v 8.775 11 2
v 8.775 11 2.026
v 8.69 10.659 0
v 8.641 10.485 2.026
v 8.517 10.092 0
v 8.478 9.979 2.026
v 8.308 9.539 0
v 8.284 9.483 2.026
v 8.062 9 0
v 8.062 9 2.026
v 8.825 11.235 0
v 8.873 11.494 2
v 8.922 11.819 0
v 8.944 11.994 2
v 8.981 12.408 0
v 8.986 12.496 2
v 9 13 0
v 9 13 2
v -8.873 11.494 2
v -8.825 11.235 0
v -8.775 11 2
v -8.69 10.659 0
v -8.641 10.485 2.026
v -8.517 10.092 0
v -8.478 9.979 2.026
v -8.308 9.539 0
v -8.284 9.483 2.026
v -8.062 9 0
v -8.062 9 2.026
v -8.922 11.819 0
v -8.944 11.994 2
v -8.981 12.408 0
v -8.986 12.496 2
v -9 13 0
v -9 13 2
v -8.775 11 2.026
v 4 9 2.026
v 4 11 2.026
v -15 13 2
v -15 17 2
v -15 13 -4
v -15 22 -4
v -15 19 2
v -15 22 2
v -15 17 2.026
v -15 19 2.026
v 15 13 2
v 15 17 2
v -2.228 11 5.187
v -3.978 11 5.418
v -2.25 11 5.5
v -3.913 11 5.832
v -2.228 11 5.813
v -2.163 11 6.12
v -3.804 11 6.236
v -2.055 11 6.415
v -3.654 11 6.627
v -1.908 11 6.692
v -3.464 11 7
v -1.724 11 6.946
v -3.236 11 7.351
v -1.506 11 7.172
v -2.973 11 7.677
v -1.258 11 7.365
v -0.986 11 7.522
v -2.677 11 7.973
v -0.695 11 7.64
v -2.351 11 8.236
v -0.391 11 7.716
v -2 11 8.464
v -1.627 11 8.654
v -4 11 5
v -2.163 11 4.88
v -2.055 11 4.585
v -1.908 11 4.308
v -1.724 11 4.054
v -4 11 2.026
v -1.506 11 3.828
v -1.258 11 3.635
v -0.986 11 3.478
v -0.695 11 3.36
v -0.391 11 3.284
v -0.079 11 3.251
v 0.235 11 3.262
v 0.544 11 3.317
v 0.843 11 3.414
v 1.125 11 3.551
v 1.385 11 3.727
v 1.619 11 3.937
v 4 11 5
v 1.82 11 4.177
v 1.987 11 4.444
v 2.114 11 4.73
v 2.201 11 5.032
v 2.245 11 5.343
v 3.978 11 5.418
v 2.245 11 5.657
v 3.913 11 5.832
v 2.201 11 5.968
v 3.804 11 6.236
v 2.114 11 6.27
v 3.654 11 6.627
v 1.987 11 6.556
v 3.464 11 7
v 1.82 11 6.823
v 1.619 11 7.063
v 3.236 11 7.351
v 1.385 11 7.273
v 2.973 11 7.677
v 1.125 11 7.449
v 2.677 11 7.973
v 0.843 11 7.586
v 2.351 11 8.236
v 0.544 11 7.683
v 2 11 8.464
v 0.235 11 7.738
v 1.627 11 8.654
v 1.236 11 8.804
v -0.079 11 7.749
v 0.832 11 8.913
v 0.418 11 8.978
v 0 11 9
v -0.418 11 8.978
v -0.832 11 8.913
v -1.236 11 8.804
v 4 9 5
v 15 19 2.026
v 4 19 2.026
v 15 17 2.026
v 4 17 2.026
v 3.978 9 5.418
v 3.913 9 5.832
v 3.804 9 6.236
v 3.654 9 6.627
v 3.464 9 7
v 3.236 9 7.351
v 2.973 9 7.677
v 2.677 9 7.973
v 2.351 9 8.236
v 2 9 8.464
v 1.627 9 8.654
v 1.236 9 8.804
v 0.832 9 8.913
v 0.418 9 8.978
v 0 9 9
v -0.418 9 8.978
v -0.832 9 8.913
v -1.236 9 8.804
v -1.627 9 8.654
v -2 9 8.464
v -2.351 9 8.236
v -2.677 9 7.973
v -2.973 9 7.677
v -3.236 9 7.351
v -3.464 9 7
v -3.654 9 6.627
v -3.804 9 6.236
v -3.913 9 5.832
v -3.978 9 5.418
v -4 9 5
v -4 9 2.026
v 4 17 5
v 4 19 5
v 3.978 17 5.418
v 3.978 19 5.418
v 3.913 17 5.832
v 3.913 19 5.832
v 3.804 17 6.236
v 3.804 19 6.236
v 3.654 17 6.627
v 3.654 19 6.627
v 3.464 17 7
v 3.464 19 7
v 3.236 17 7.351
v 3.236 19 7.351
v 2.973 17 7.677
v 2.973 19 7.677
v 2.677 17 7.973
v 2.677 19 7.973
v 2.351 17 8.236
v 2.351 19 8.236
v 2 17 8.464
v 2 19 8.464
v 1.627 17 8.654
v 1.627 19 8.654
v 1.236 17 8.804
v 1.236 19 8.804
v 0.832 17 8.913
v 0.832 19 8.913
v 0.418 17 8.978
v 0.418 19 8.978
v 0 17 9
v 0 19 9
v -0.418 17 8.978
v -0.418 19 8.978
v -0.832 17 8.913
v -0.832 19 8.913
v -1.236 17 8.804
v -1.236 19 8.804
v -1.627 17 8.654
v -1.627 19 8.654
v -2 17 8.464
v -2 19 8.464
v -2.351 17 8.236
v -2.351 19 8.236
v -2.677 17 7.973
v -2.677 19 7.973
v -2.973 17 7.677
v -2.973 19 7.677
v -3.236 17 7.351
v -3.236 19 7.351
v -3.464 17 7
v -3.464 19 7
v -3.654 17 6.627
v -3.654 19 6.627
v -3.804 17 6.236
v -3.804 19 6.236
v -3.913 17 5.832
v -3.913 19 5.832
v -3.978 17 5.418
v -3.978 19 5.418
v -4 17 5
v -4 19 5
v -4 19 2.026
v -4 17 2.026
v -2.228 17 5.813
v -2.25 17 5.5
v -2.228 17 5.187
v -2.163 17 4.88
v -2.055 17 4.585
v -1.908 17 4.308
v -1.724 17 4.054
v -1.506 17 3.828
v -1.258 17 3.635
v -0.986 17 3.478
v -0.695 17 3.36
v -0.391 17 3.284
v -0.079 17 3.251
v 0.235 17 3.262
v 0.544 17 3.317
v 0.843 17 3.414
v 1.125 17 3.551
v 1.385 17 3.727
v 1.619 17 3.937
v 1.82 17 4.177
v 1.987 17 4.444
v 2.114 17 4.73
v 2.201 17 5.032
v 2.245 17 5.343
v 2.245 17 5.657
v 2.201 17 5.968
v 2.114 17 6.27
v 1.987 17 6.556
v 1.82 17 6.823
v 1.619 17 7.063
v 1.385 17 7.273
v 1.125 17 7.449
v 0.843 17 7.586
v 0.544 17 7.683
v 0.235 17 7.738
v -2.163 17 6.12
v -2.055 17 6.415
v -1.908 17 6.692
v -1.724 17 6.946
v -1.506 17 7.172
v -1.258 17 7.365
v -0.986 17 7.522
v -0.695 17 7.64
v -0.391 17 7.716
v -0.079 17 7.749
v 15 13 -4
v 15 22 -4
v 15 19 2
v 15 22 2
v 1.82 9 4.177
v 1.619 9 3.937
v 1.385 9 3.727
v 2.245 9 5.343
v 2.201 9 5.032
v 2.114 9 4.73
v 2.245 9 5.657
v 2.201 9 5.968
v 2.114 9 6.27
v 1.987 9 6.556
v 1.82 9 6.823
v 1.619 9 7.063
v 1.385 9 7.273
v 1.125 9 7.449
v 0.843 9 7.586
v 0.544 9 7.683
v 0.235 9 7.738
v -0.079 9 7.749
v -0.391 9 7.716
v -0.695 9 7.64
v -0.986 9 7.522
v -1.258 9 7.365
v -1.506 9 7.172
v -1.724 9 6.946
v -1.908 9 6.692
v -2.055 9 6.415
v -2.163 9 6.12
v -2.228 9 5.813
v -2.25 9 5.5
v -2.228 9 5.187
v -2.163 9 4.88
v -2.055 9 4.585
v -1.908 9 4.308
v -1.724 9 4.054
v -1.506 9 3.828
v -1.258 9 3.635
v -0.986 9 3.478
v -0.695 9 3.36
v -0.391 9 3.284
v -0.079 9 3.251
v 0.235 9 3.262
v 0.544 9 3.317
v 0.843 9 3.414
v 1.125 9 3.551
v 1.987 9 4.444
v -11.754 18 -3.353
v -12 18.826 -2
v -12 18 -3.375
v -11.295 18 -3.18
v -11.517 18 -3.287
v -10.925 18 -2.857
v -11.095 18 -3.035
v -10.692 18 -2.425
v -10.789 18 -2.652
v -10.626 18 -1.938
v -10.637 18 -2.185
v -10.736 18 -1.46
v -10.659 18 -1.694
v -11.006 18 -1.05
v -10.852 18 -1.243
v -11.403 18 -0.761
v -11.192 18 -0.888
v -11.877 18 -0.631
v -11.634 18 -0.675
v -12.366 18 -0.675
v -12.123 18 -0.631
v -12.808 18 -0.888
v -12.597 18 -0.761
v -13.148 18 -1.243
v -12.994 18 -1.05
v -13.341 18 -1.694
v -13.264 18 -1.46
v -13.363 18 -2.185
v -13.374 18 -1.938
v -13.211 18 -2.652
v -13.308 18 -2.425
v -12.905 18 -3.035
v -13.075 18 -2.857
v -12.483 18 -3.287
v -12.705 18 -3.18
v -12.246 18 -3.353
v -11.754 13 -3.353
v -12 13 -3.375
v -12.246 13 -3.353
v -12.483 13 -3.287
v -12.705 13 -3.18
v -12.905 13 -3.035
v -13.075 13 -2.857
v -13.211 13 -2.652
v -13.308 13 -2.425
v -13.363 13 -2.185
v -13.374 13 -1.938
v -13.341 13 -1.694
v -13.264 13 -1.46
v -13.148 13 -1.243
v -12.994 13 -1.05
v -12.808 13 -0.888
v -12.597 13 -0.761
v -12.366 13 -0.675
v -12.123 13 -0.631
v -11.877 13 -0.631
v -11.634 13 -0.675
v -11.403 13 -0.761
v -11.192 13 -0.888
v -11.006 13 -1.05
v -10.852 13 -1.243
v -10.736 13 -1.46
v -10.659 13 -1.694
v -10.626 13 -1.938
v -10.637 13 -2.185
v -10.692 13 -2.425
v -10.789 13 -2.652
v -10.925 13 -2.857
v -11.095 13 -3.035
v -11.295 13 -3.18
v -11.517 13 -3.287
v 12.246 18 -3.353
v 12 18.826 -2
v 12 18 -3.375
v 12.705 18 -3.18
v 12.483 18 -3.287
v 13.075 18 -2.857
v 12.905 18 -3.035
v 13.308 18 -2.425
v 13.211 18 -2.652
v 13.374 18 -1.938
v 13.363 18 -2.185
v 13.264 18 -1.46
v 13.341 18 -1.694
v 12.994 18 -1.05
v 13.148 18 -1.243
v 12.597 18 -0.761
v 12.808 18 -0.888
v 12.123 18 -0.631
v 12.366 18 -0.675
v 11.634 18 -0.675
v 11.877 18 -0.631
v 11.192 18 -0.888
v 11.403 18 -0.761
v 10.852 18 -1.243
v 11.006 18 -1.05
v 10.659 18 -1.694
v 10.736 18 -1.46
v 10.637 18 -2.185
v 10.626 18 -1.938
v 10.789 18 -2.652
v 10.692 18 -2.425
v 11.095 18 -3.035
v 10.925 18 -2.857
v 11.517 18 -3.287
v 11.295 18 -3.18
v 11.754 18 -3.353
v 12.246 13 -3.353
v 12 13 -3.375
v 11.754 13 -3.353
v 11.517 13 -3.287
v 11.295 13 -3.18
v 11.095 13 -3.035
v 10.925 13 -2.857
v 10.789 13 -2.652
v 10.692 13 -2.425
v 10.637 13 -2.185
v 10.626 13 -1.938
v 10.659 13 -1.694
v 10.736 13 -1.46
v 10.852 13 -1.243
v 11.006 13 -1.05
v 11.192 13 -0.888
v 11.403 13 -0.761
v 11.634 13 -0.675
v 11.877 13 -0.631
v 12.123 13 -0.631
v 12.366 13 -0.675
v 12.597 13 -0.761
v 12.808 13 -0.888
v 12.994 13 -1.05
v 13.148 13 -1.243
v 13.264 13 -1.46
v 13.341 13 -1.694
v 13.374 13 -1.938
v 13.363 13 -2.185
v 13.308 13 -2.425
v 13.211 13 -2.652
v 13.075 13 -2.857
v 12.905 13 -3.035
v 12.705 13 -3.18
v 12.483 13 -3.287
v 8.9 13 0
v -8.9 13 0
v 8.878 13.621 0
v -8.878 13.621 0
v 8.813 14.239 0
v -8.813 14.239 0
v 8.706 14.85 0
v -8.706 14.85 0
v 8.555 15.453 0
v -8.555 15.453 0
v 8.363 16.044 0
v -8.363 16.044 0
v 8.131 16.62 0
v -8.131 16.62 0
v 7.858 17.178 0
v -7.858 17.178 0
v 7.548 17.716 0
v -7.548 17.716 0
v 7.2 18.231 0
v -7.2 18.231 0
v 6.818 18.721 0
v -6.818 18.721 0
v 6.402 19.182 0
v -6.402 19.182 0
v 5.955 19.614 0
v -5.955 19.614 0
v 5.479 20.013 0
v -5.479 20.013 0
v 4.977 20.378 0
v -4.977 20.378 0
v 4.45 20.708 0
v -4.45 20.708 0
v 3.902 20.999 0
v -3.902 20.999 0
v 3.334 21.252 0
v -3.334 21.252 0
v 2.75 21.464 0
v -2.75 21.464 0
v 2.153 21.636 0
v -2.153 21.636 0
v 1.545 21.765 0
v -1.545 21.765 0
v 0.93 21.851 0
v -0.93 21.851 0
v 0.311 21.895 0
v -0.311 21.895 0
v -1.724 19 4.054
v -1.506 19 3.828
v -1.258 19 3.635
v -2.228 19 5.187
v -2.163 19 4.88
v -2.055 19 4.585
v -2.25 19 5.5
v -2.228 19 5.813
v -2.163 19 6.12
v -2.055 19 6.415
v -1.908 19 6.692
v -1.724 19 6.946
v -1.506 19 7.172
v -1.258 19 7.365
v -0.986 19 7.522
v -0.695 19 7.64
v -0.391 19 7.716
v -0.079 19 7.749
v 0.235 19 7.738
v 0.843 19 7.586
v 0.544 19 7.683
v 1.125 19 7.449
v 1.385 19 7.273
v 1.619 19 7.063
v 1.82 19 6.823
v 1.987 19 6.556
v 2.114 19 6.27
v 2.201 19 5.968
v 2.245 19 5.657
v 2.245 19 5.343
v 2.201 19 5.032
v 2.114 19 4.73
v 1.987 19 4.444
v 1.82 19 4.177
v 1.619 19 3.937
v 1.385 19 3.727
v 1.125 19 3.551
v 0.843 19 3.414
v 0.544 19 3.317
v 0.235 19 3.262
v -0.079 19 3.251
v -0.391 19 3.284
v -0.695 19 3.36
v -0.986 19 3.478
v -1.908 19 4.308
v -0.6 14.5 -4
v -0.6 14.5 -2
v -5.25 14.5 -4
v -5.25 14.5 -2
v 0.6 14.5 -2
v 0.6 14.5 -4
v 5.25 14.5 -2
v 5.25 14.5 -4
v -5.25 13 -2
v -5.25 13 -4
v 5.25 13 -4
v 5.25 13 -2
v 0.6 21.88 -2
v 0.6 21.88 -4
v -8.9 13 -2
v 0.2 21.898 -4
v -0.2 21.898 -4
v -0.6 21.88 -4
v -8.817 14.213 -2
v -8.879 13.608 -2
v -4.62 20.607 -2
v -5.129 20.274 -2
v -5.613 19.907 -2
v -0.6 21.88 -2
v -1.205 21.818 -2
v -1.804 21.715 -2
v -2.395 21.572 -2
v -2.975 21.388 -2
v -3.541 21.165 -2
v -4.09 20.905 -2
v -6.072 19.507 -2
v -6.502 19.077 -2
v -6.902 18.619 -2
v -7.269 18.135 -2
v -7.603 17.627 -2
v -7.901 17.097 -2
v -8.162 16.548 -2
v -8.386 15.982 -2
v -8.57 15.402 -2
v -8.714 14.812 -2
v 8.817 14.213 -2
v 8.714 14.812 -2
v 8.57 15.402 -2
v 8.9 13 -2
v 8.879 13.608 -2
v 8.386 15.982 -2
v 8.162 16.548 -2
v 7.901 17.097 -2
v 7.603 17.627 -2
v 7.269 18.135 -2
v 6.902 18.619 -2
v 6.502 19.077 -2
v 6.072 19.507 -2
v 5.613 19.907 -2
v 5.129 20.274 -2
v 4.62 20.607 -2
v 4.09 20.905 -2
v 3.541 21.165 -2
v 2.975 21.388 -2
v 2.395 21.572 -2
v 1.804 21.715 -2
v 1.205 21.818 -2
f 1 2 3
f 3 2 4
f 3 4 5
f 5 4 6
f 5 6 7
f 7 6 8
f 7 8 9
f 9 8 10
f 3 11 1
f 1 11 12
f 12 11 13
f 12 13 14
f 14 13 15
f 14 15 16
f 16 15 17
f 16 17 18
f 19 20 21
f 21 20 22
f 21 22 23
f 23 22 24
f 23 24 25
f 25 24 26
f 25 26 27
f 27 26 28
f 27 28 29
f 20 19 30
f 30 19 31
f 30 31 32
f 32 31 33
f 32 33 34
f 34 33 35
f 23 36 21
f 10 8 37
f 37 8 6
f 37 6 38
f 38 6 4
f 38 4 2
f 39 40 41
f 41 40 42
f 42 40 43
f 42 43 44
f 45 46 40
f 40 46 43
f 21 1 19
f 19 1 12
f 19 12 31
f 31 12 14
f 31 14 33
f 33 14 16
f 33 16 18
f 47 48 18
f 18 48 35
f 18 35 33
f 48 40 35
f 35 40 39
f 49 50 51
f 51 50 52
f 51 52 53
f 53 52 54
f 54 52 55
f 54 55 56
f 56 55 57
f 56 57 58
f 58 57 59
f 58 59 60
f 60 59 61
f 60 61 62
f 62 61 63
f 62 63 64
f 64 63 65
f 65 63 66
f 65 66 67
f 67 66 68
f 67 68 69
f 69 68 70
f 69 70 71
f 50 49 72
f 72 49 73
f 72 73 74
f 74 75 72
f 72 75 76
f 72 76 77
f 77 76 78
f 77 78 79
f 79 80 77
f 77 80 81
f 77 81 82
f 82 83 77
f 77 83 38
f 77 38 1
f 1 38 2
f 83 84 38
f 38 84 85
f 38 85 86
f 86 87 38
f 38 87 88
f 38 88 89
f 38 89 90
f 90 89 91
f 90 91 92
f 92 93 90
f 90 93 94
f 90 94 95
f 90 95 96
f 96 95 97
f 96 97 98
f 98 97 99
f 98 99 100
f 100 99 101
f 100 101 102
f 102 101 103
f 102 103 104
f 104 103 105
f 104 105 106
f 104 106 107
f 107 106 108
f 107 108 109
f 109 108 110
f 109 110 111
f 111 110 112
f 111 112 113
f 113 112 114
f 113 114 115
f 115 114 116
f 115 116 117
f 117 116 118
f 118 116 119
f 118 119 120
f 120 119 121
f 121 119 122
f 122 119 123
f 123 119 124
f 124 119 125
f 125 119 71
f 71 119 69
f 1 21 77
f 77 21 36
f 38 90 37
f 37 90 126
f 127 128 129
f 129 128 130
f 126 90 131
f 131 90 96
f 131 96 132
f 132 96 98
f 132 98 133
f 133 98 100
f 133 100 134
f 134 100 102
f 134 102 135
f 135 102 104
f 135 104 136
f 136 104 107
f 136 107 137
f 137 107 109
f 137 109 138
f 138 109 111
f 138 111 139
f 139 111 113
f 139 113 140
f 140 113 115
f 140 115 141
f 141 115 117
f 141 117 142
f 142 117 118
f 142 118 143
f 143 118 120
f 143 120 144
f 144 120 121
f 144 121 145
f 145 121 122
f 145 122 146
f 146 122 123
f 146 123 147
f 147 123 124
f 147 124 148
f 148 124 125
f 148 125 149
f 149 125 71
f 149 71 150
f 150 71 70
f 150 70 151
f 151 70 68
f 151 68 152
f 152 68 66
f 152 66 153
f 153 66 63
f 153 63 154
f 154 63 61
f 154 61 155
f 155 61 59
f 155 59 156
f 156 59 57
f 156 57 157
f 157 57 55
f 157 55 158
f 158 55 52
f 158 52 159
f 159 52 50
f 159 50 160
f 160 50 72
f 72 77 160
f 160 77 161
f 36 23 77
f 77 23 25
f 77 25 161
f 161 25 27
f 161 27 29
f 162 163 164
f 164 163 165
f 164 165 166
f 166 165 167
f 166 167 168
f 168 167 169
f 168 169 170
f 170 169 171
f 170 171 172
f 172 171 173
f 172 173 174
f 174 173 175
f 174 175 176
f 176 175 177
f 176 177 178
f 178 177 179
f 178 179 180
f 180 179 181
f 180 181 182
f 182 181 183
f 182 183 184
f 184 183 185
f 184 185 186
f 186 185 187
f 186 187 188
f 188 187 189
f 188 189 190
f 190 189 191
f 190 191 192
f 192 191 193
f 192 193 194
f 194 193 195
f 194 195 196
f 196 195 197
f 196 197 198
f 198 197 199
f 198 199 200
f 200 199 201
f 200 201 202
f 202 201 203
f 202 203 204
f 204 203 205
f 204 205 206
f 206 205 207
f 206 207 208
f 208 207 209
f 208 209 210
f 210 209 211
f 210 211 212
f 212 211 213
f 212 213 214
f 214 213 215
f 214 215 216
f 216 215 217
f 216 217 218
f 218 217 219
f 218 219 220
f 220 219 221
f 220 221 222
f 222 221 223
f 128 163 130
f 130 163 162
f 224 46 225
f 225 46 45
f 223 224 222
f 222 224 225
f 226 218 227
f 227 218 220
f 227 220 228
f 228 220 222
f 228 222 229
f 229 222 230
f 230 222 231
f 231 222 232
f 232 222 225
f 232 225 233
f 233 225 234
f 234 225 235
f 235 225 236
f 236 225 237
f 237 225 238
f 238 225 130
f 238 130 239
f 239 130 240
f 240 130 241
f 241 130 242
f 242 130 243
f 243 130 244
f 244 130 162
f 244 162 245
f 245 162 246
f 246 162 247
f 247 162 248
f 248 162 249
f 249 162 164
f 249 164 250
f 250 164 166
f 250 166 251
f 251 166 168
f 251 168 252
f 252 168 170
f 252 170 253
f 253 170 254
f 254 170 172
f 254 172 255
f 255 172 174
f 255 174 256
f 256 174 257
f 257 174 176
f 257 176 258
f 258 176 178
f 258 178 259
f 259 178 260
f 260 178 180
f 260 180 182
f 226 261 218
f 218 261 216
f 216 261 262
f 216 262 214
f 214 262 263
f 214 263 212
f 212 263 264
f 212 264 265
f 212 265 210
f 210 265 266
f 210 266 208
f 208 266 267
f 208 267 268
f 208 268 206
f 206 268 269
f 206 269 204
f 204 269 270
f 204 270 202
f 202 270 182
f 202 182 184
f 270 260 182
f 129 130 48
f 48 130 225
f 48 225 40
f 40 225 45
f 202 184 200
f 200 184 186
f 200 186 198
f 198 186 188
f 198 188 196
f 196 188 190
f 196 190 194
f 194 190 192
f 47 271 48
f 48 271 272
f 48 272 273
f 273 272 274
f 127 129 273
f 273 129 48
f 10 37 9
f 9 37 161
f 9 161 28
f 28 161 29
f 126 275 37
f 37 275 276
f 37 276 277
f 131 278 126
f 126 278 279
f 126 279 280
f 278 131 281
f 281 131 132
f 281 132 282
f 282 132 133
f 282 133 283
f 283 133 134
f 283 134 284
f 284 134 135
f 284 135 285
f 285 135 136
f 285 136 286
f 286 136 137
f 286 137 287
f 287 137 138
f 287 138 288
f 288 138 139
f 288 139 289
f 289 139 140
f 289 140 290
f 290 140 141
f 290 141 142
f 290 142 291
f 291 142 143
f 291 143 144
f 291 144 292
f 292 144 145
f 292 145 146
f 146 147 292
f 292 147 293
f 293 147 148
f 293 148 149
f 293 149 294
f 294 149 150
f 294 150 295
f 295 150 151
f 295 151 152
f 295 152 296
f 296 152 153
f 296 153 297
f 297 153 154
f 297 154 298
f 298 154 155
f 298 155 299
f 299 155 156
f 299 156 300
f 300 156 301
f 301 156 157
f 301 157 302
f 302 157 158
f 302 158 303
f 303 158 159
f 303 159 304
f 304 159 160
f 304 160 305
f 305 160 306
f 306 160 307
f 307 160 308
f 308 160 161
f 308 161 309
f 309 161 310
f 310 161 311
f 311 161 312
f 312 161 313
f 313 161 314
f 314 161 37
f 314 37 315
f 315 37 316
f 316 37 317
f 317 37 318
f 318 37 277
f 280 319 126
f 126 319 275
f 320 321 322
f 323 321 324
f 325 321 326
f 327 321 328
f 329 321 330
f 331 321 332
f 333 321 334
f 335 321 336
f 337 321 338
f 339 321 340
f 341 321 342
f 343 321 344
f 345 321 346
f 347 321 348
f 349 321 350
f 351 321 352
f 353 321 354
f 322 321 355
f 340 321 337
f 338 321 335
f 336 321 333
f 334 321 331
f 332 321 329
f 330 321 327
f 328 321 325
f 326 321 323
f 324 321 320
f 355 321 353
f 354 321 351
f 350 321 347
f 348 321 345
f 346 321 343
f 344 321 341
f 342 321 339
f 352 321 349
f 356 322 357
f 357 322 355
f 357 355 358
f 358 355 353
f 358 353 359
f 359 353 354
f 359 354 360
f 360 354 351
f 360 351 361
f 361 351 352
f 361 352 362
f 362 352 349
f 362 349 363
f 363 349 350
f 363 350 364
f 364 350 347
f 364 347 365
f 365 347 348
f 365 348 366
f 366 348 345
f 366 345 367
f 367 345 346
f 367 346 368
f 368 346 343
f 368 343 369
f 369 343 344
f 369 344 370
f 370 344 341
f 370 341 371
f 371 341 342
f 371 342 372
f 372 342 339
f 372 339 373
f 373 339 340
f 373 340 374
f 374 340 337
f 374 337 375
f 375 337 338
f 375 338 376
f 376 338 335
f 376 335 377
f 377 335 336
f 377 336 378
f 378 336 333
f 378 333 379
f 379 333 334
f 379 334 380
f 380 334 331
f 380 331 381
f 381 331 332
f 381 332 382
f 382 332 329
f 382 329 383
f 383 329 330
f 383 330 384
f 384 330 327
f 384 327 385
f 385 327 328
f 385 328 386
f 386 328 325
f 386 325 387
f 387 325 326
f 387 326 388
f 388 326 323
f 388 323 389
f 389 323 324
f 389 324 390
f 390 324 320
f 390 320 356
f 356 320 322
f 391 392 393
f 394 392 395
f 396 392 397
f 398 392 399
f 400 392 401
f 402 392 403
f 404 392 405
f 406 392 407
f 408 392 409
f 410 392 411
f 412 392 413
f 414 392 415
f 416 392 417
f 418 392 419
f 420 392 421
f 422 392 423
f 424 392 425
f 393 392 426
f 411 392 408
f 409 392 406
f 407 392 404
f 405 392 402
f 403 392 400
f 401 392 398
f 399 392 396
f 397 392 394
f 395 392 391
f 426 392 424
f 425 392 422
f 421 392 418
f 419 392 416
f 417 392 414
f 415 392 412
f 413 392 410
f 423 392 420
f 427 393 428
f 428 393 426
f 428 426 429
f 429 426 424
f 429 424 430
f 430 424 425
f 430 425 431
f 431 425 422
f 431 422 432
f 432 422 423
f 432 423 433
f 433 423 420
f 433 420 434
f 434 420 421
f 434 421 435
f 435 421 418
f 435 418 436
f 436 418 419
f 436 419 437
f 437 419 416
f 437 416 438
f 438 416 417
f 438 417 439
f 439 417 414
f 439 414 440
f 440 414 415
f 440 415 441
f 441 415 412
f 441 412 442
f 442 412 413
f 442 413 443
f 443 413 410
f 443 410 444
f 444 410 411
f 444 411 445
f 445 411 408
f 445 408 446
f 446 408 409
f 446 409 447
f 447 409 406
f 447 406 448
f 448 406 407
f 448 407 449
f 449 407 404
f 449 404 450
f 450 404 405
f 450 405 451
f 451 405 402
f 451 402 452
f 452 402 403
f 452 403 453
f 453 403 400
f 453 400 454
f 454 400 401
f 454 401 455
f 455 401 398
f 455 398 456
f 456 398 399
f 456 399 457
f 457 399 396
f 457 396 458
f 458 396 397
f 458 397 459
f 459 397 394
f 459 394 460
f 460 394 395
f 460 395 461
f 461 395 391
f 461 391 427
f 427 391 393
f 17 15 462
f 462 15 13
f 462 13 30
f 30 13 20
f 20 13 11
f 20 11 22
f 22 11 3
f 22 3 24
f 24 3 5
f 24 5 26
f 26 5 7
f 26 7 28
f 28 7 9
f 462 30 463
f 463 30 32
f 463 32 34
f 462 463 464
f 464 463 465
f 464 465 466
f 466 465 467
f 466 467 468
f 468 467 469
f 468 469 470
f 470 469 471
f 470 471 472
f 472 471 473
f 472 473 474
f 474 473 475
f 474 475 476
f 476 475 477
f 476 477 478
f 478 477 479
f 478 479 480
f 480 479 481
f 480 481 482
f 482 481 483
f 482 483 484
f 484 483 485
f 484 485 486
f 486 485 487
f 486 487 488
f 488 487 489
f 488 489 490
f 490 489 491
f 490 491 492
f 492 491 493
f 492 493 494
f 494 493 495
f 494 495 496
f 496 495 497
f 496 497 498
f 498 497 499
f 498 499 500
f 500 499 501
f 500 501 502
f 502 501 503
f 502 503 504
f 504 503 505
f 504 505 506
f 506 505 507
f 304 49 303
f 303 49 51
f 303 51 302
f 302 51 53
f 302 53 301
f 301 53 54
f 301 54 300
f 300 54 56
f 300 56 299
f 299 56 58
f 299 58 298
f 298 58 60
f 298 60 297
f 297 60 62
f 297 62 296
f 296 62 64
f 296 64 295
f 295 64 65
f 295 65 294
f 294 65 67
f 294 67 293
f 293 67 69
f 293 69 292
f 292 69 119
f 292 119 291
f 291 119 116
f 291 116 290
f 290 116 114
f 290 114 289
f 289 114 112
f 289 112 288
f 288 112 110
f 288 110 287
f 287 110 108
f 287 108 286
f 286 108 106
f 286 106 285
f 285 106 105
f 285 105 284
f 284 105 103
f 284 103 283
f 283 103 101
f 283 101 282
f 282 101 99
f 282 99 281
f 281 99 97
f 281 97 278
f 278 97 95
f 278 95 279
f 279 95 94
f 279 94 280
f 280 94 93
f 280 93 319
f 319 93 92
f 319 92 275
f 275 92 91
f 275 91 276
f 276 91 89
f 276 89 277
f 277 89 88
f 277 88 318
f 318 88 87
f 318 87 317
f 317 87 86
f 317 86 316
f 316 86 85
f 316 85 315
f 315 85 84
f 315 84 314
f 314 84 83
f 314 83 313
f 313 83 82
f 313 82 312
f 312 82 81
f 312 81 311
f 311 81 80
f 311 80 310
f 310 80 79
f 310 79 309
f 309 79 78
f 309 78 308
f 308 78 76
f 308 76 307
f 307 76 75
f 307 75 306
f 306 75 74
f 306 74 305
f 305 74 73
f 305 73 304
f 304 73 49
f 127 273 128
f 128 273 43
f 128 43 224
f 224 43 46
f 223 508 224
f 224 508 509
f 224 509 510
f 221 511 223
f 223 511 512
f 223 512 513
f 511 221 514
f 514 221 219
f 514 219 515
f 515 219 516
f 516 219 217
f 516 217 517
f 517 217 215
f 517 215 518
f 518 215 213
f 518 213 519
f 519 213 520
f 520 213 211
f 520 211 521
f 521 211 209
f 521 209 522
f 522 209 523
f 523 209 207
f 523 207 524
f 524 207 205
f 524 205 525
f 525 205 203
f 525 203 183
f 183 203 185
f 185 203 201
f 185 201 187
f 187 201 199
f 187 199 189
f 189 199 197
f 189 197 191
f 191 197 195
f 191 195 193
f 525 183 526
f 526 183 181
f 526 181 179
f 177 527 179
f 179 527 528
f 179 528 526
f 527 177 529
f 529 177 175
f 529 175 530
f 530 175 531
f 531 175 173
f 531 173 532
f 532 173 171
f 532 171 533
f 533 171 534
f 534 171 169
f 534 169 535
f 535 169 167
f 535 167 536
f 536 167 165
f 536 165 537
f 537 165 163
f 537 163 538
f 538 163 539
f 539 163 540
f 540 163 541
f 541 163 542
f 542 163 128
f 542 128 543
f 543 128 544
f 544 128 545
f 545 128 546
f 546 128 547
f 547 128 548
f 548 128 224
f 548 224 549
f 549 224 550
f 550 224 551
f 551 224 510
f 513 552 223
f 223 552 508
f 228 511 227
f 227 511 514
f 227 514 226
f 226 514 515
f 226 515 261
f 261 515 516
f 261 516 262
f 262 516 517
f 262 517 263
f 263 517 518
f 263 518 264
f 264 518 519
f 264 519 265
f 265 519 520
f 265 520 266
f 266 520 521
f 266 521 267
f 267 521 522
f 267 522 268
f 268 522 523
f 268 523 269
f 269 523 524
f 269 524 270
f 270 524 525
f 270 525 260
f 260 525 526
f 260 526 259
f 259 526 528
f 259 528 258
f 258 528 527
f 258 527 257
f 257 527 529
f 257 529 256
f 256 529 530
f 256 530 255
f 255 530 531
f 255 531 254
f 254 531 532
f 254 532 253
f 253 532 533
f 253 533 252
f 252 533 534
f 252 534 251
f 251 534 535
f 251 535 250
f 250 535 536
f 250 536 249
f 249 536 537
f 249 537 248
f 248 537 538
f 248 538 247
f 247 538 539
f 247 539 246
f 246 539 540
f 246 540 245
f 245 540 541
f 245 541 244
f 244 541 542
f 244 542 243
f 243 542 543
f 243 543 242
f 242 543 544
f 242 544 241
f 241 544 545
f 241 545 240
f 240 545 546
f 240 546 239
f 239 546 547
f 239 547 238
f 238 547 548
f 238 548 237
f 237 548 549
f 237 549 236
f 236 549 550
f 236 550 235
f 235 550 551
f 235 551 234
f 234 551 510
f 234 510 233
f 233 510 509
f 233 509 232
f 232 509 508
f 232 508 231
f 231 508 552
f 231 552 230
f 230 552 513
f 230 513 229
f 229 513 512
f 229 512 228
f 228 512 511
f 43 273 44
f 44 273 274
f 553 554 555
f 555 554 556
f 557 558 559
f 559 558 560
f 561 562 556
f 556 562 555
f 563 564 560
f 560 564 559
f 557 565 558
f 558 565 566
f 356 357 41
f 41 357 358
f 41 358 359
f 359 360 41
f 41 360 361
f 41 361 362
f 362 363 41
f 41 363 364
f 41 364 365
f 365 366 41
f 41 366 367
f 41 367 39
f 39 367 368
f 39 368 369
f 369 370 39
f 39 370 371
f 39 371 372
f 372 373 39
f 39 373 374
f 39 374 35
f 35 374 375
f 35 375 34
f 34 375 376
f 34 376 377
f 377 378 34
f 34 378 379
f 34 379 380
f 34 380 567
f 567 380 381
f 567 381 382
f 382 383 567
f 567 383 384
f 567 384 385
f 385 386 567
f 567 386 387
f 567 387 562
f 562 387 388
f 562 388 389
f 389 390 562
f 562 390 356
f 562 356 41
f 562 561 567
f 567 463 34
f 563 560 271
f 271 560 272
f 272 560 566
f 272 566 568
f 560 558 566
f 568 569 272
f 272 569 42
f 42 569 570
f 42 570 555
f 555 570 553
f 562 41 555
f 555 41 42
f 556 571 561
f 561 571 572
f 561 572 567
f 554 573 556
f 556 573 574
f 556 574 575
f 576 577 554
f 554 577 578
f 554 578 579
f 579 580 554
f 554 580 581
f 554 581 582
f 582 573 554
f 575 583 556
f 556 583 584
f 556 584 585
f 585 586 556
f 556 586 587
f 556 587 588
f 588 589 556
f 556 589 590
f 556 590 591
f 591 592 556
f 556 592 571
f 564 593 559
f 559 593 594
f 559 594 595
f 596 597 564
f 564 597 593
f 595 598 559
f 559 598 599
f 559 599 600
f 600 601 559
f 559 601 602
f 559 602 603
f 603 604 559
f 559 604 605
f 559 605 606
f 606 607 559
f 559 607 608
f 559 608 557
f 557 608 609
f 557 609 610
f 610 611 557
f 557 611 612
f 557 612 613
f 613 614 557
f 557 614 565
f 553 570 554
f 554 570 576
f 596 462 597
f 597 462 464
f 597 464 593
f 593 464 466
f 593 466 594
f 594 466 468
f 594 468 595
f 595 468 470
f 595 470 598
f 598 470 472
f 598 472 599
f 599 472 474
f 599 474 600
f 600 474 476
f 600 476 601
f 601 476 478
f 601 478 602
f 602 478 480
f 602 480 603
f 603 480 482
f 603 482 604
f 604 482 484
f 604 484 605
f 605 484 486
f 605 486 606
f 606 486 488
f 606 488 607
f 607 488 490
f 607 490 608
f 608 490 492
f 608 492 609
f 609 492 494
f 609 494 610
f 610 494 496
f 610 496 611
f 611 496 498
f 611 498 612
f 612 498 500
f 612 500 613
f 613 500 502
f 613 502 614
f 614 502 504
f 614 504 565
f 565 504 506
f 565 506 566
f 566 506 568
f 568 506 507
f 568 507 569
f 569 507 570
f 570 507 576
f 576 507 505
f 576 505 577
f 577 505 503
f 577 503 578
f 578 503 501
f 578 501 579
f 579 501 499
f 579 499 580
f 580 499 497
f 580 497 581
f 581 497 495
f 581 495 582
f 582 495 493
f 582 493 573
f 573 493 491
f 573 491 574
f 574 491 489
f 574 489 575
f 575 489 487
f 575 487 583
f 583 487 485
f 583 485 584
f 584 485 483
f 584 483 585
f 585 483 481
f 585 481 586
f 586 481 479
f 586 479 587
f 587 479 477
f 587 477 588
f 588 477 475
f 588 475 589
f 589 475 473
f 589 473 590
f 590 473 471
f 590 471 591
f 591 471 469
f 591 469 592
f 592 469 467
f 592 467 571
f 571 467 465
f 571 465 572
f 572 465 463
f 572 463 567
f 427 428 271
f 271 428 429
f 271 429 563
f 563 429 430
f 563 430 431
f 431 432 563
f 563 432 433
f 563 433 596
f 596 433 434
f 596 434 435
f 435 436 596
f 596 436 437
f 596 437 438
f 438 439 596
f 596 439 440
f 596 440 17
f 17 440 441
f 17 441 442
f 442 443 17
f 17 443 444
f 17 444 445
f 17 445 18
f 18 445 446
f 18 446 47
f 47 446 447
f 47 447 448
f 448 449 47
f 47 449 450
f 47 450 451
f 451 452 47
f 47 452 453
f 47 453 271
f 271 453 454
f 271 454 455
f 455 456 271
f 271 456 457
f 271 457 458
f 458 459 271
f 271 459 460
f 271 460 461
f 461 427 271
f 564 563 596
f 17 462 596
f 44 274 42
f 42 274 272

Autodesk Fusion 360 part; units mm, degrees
sketch "スケッチ1" plane through (0, 0, 0) normal (0, 0, 1) x (1, 0, 0)
  line L0 (-16.5, 22) -> (16.5, 22)
  line L1 (16.5, 22) -> (16.5, 0)
  line L2 (16.5, 0) -> (-16.5, 0)
  line L3 (-16.5, 0) -> (-16.5, 22)
  dimension "d7" = 22
  dimension "d8" = 33
extrude "押し出し1" add sketch "スケッチ1" along normal blind 2
sketch "スケッチ3" plane through (0, 0, 0) normal (0, 0, -1) x (1, 0, 0)
  line L0 (16.5, 0) -> (-16.5, 0)
  line L1 (-16.5, 0) -> (-16.5, -22)
  line L2 (-16.5, -22) -> (16.5, -22)
  line L3 (16.5, -22) -> (16.5, 0)
  arc A0 (-8.9, -13) -> (8.9, -13) centre (0, -13) ccw
  line L4 (16.5, -13) -> (-16.5, -13)
  dimension "d9" = 17.8
  dimension "d10" = 9
extrude "押し出し2" add sketch "スケッチ3" along normal blind 2 contours L1 L2 L3 A0 L4
sketch "スケッチ4" plane through (0, 0, -2) normal (0, 0, -1) x (1, 0, 0)
  line L0 (-8.9, -13) -> (-16.5, -13)
  line L1 (-16.5, -13) -> (-16.5, -22)
  line L2 (-16.5, -22) -> (16.5, -22)
  line L3 (16.5, -22) -> (16.5, -13)
  line L4 (16.5, -13) -> (8.9, -13)
  arc A0 (-8.9, -13) -> (8.9, -13) centre (0, -13) ccw
  line L5 (16.5, -22) -> (0.6, -22)
  line L6 (0.6, -22) -> (0.6, -13)
  line L7 (0.6, -13) -> (16.5, -13)
  line L8 (16.5, -13) -> (16.5, -22)
  line L9 (-16.5, -22) -> (-0.6, -22)
  line L10 (-0.6, -22) -> (-0.6, -13)
  line L11 (-0.6, -13) -> (-16.5, -13)
  line L12 (-16.5, -13) -> (-16.5, -22)
  dimension "d13" = 1.2
extrude "押し出し3" add sketch "スケッチ4" along normal blind 2
sketch "スケッチ5" plane through (0, 0, 0) normal (0, 0, -1) x (1, 0, 0)
  line L0 (8.9, -13) -> (16.5, -13)
  line L1 (16.5, -13) -> (16.5, 0)
  line L2 (16.5, 0) -> (-16.5, 0)
  line L3 (-16.5, 0) -> (-16.5, -13)
  line L4 (-16.5, -13) -> (-8.9, -13)
  arc A0 (-8.9, -13) -> (8.9, -13) centre (0, -13) ccw
  line L5 (-3.75, 0) -> (3.75, 0)
  line L6 (3.75, 0) -> (3.75, -18)
  line L7 (3.75, -18) -> (-3.75, -18)
  line L8 (-3.75, -18) -> (-3.75, 0)
  line L9 (0, -1.75) -> (0, -22.5)
  line L10 (3.75, -7) -> (16.5, -7)
  line L11 (-3.75, -7) -> (-16.5, -7)
  dimension "d17" = 7.5
  dimension "d18" = 11
  dimension "d19" = 11
sketch "スケッチ9" plane through (0, 13, 0) normal (0, -1, 0) x (1, 0, 0)
  line L0 (-8.9, 0) -> (-16.5, 0)
  line L1 (-16.5, 0) -> (-16.5, -4)
  line L2 (-16.5, -4) -> (-0.6, -4)
  line L3 (-0.6, -4) -> (-0.6, -2)
  line L4 (-0.6, -2) -> (-8.9, -2)
  line L5 (-8.9, -2) -> (-8.9, 0)
  line L6 (-5.25, -2) -> (5.25, -2)
  line L7 (5.25, -2) -> (5.25, -4)
  line L8 (5.25, -4) -> (-5.25, -4)
  line L9 (-5.25, -4) -> (-5.25, -2)
  line L10 (16.5, -4) -> (0.6, -4)
  dimension "d37" = 10.5
  dimension "d38" = 5.25
extrude "押し出し7" cut sketch "スケッチ9" against normal blind 1.5 contours L2 L3 L4 L6 L8 L9 | L3 L6 L7 L8 L10
sketch "スケッチ11" plane through (0, 22, 0) normal (0, 1, 0) x (-1, 0, 0)
  line L0 (16.5, -4) -> (16.5, 2)
  line L1 (16.5, 2) -> (-16.5, 2)
  line L2 (-16.5, 2) -> (-16.5, -4)
  line L3 (-16.5, -4) -> (16.5, -4)
  line L4 (16.5, 2) -> (-13.5, 2)
  line L5 (-13.5, 2) -> (-13.5, 12)
  line L6 (-13.5, 12) -> (16.5, 12)
  line L7 (16.5, 12) -> (16.5, 2)
  dimension "d49" = 10
ref_plane "作業平面1" through (0, 11, -1) normal (0, 1, 0) x (-1, 0, 0)
sketch "スケッチ13" plane through (0, 11, -1) normal (0, 1, 0) x (1, 0, 0)
  line L0 (16.5, -10) -> (-16.5, -10)
  line L1 (-16.5, -10) -> (-16.5, -3)
  line L2 (-16.5, -3) -> (16.5, -3)
  line L3 (16.5, -3) -> (16.5, -10)
  line L4 (16.5, 3) -> (16.5, -3)
  line L5 (-16.5, 3) -> (-16.5, -3)
  circle A0 centre (0, -6.5) radius 2.25
  dimension "d53" = 7
  dimension "d54" = 4.5
  dimension "d58" = 3.5
extrude "押し出し11" add sketch "スケッチ13" along normal blind -2 and the other way blind -8
sketch "Sketch17" plane through (16.5, 0, 0) normal (1, 0, 0) x (0, 1, 0)
  line L0 (22, -4) -> (22, 2)
  line L1 (22, 2) -> (19, 2)
  line L2 (19, 2) -> (19, 9)
  line L3 (19, 9) -> (9, 9)
  line L4 (9, 9) -> (9, 2)
  line L5 (9, 2) -> (0, 2)
  line L6 (0, 2) -> (0, 0)
  line L7 (0, 0) -> (13, 0)
  line L8 (13, 0) -> (13, -4)
  line L9 (13, -4) -> (22, -4)
  line L10 (11, 9) -> (17, 9)
  line L11 (17, 9) -> (17, 2)
  line L12 (17, 2) -> (11, 2)
  line L13 (11, 2) -> (11, 9)
extrude "Extrude15" cut sketch "Sketch17" against normal blind 400 contours L3 L10 L11 L12 L13
sketch "Sketch18" plane through (-16.5, 0, 0) normal (-1, 0, 0) x (0, -1, 0)
  line L0 (-11, 9) -> (-11, 2)
  line L1 (-11, 2) -> (-17, 2)
  line L2 (-17, 2) -> (-17, 9)
  line L3 (-17, 9) -> (-19, 9)
  line L4 (-19, 9) -> (-19, 2)
  line L5 (-19, 2) -> (-22, 2)
  line L6 (-22, 2) -> (-22, -4)
  line L7 (-22, -4) -> (-13, -4)
  line L8 (-13, -4) -> (-13, 0)
  line L9 (-13, 0) -> (0, 0)
  line L10 (0, 0) -> (0, 2)
  line L11 (0, 2) -> (-9, 2)
  line L12 (-9, 2) -> (-9, 9)
  line L13 (-9, 9) -> (-11, 9)
  line L14 (-9, 2) -> (0, 2)
  line L15 (0, 2) -> (0, 0)
  line L16 (0, 0) -> (-9, 0)
  line L17 (-9, 0) -> (-9, 2)
extrude "Extrude16" cut sketch "Sketch18" against normal blind 34 contours L9 L10 L11 L14 L15 L16 L17
sketch "Sketch19" plane through (0, 13, 0) normal (0, -1, 0) x (1, 0, 0)
  line L0 (5.25, -2) -> (5.25, -4)
  line L1 (5.25, -4) -> (16.5, -4)
  line L2 (16.5, -4) -> (16.5, 0)
  line L3 (16.5, 0) -> (8.9, 0)
  line L4 (8.9, 0) -> (8.9, -2)
  line L5 (8.9, -2) -> (5.25, -2)
  line L6 (0.6, -2) -> (16.5, -2)
  line L7 (-0.6, -2) -> (-16.5, -2)
  point P0 (12, -2)
  point P1 (-12, -2)
hole "Hole1" at (-12, 13, -2) at (12, 13, -2) direction (0, 1, 0) diameter 2.75 depth 5 tip angle 118
sketch "Sketch20" plane through (0, 9, 0) normal (0, -1, 0) x (1, 0, 0)
  circle A0 centre (0, 5.5) radius 2.25
  line L0 (16.5, 0) -> (16.5, 9)
  line L1 (16.5, 9) -> (-16.5, 9)
  line L2 (-16.5, 9) -> (-16.5, 0)
  line L3 (-16.5, 0) -> (16.5, 0)
  circle A1 centre (0, 5) radius 4
  curve L4
  curve L5
  curve L6
  curve L7
  line L8 (-16.5, 2.0263) -> (16.5, 2.0263)
  line L9 (16.5, 2.0263) -> (16.5, 0)
  line L10 (16.5, 0) -> (-16.5, 0)
  line L11 (-16.5, 0) -> (-16.5, 2.0263)
  line L12 (-4, 5) -> (-4, 2.0263)
  line L13 (4, 5) -> (4, 2.0263)
  point P0 (-16.5, 2)
extrude "Extrude17" cut sketch "Sketch20" against normal blind 150 contours L0 L1 A1 L8 L13 | L1 L2 A1 L8 L12
sketch "Sketch21" plane through (0, 0, -4) normal (0, 0, -1) x (1, 0, 0)
  line L0 (5.25, -13) -> (5.25, -14.5)
  line L1 (5.25, -14.5) -> (0.6, -14.5)
  line L2 (0.6, -14.5) -> (0.6, -21.8798)
  arc A0 (-0.6, -21.8798) -> (0.6, -21.8798) centre (0, -13) ccw
  line L3 (-0.6, -21.8798) -> (-0.6, -14.5)
  line L4 (-0.6, -14.5) -> (-5.25, -14.5)
  line L5 (-5.25, -14.5) -> (-5.25, -13)
  line L6 (-5.25, -13) -> (-16.5, -13)
  line L7 (-16.5, -13) -> (-16.5, -22)
  line L8 (-16.5, -22) -> (16.5, -22)
  line L9 (16.5, -22) -> (16.5, -13)
  line L10 (16.5, -13) -> (5.25, -13)
sketch "Sketch22" plane through (0, 0, 0) normal (0, 0, -1) x (1, 0, 0)
  line L0 (16.5, -9) -> (-16.5, -9)
  line L1 (-16.5, -9) -> (-16.5, -13)
  line L2 (-16.5, -13) -> (-8.9, -13)
  arc A0 (-8.9, -13) -> (8.9, -13) centre (0, -13) ccw
  line L3 (8.9, -13) -> (16.5, -13)
  line L4 (16.5, -13) -> (16.5, -9)
  circle A1 centre (0, -13) radius 9
extrude "Extrude18" cut sketch "Sketch22" against normal blind 10 contours L0 L3 L4 A1 | L0 L1 L2 A1
move_face "OffsetFaces1" offset -1 1 faces at (16.5, 17.3333, -2)
move_face "OffsetFaces2" offset -0.5 1 faces at (15.5, 17.3333, -2)
move_face "OffsetFaces3" offset -1.5 1 faces at (-16.5, 17.3333, -2)
move_face "OffsetFaces4" offset 1 1 faces at (5, 22, 0)
move_face "OffsetFaces5" offset -1 1 faces at (5, 23, 0)
